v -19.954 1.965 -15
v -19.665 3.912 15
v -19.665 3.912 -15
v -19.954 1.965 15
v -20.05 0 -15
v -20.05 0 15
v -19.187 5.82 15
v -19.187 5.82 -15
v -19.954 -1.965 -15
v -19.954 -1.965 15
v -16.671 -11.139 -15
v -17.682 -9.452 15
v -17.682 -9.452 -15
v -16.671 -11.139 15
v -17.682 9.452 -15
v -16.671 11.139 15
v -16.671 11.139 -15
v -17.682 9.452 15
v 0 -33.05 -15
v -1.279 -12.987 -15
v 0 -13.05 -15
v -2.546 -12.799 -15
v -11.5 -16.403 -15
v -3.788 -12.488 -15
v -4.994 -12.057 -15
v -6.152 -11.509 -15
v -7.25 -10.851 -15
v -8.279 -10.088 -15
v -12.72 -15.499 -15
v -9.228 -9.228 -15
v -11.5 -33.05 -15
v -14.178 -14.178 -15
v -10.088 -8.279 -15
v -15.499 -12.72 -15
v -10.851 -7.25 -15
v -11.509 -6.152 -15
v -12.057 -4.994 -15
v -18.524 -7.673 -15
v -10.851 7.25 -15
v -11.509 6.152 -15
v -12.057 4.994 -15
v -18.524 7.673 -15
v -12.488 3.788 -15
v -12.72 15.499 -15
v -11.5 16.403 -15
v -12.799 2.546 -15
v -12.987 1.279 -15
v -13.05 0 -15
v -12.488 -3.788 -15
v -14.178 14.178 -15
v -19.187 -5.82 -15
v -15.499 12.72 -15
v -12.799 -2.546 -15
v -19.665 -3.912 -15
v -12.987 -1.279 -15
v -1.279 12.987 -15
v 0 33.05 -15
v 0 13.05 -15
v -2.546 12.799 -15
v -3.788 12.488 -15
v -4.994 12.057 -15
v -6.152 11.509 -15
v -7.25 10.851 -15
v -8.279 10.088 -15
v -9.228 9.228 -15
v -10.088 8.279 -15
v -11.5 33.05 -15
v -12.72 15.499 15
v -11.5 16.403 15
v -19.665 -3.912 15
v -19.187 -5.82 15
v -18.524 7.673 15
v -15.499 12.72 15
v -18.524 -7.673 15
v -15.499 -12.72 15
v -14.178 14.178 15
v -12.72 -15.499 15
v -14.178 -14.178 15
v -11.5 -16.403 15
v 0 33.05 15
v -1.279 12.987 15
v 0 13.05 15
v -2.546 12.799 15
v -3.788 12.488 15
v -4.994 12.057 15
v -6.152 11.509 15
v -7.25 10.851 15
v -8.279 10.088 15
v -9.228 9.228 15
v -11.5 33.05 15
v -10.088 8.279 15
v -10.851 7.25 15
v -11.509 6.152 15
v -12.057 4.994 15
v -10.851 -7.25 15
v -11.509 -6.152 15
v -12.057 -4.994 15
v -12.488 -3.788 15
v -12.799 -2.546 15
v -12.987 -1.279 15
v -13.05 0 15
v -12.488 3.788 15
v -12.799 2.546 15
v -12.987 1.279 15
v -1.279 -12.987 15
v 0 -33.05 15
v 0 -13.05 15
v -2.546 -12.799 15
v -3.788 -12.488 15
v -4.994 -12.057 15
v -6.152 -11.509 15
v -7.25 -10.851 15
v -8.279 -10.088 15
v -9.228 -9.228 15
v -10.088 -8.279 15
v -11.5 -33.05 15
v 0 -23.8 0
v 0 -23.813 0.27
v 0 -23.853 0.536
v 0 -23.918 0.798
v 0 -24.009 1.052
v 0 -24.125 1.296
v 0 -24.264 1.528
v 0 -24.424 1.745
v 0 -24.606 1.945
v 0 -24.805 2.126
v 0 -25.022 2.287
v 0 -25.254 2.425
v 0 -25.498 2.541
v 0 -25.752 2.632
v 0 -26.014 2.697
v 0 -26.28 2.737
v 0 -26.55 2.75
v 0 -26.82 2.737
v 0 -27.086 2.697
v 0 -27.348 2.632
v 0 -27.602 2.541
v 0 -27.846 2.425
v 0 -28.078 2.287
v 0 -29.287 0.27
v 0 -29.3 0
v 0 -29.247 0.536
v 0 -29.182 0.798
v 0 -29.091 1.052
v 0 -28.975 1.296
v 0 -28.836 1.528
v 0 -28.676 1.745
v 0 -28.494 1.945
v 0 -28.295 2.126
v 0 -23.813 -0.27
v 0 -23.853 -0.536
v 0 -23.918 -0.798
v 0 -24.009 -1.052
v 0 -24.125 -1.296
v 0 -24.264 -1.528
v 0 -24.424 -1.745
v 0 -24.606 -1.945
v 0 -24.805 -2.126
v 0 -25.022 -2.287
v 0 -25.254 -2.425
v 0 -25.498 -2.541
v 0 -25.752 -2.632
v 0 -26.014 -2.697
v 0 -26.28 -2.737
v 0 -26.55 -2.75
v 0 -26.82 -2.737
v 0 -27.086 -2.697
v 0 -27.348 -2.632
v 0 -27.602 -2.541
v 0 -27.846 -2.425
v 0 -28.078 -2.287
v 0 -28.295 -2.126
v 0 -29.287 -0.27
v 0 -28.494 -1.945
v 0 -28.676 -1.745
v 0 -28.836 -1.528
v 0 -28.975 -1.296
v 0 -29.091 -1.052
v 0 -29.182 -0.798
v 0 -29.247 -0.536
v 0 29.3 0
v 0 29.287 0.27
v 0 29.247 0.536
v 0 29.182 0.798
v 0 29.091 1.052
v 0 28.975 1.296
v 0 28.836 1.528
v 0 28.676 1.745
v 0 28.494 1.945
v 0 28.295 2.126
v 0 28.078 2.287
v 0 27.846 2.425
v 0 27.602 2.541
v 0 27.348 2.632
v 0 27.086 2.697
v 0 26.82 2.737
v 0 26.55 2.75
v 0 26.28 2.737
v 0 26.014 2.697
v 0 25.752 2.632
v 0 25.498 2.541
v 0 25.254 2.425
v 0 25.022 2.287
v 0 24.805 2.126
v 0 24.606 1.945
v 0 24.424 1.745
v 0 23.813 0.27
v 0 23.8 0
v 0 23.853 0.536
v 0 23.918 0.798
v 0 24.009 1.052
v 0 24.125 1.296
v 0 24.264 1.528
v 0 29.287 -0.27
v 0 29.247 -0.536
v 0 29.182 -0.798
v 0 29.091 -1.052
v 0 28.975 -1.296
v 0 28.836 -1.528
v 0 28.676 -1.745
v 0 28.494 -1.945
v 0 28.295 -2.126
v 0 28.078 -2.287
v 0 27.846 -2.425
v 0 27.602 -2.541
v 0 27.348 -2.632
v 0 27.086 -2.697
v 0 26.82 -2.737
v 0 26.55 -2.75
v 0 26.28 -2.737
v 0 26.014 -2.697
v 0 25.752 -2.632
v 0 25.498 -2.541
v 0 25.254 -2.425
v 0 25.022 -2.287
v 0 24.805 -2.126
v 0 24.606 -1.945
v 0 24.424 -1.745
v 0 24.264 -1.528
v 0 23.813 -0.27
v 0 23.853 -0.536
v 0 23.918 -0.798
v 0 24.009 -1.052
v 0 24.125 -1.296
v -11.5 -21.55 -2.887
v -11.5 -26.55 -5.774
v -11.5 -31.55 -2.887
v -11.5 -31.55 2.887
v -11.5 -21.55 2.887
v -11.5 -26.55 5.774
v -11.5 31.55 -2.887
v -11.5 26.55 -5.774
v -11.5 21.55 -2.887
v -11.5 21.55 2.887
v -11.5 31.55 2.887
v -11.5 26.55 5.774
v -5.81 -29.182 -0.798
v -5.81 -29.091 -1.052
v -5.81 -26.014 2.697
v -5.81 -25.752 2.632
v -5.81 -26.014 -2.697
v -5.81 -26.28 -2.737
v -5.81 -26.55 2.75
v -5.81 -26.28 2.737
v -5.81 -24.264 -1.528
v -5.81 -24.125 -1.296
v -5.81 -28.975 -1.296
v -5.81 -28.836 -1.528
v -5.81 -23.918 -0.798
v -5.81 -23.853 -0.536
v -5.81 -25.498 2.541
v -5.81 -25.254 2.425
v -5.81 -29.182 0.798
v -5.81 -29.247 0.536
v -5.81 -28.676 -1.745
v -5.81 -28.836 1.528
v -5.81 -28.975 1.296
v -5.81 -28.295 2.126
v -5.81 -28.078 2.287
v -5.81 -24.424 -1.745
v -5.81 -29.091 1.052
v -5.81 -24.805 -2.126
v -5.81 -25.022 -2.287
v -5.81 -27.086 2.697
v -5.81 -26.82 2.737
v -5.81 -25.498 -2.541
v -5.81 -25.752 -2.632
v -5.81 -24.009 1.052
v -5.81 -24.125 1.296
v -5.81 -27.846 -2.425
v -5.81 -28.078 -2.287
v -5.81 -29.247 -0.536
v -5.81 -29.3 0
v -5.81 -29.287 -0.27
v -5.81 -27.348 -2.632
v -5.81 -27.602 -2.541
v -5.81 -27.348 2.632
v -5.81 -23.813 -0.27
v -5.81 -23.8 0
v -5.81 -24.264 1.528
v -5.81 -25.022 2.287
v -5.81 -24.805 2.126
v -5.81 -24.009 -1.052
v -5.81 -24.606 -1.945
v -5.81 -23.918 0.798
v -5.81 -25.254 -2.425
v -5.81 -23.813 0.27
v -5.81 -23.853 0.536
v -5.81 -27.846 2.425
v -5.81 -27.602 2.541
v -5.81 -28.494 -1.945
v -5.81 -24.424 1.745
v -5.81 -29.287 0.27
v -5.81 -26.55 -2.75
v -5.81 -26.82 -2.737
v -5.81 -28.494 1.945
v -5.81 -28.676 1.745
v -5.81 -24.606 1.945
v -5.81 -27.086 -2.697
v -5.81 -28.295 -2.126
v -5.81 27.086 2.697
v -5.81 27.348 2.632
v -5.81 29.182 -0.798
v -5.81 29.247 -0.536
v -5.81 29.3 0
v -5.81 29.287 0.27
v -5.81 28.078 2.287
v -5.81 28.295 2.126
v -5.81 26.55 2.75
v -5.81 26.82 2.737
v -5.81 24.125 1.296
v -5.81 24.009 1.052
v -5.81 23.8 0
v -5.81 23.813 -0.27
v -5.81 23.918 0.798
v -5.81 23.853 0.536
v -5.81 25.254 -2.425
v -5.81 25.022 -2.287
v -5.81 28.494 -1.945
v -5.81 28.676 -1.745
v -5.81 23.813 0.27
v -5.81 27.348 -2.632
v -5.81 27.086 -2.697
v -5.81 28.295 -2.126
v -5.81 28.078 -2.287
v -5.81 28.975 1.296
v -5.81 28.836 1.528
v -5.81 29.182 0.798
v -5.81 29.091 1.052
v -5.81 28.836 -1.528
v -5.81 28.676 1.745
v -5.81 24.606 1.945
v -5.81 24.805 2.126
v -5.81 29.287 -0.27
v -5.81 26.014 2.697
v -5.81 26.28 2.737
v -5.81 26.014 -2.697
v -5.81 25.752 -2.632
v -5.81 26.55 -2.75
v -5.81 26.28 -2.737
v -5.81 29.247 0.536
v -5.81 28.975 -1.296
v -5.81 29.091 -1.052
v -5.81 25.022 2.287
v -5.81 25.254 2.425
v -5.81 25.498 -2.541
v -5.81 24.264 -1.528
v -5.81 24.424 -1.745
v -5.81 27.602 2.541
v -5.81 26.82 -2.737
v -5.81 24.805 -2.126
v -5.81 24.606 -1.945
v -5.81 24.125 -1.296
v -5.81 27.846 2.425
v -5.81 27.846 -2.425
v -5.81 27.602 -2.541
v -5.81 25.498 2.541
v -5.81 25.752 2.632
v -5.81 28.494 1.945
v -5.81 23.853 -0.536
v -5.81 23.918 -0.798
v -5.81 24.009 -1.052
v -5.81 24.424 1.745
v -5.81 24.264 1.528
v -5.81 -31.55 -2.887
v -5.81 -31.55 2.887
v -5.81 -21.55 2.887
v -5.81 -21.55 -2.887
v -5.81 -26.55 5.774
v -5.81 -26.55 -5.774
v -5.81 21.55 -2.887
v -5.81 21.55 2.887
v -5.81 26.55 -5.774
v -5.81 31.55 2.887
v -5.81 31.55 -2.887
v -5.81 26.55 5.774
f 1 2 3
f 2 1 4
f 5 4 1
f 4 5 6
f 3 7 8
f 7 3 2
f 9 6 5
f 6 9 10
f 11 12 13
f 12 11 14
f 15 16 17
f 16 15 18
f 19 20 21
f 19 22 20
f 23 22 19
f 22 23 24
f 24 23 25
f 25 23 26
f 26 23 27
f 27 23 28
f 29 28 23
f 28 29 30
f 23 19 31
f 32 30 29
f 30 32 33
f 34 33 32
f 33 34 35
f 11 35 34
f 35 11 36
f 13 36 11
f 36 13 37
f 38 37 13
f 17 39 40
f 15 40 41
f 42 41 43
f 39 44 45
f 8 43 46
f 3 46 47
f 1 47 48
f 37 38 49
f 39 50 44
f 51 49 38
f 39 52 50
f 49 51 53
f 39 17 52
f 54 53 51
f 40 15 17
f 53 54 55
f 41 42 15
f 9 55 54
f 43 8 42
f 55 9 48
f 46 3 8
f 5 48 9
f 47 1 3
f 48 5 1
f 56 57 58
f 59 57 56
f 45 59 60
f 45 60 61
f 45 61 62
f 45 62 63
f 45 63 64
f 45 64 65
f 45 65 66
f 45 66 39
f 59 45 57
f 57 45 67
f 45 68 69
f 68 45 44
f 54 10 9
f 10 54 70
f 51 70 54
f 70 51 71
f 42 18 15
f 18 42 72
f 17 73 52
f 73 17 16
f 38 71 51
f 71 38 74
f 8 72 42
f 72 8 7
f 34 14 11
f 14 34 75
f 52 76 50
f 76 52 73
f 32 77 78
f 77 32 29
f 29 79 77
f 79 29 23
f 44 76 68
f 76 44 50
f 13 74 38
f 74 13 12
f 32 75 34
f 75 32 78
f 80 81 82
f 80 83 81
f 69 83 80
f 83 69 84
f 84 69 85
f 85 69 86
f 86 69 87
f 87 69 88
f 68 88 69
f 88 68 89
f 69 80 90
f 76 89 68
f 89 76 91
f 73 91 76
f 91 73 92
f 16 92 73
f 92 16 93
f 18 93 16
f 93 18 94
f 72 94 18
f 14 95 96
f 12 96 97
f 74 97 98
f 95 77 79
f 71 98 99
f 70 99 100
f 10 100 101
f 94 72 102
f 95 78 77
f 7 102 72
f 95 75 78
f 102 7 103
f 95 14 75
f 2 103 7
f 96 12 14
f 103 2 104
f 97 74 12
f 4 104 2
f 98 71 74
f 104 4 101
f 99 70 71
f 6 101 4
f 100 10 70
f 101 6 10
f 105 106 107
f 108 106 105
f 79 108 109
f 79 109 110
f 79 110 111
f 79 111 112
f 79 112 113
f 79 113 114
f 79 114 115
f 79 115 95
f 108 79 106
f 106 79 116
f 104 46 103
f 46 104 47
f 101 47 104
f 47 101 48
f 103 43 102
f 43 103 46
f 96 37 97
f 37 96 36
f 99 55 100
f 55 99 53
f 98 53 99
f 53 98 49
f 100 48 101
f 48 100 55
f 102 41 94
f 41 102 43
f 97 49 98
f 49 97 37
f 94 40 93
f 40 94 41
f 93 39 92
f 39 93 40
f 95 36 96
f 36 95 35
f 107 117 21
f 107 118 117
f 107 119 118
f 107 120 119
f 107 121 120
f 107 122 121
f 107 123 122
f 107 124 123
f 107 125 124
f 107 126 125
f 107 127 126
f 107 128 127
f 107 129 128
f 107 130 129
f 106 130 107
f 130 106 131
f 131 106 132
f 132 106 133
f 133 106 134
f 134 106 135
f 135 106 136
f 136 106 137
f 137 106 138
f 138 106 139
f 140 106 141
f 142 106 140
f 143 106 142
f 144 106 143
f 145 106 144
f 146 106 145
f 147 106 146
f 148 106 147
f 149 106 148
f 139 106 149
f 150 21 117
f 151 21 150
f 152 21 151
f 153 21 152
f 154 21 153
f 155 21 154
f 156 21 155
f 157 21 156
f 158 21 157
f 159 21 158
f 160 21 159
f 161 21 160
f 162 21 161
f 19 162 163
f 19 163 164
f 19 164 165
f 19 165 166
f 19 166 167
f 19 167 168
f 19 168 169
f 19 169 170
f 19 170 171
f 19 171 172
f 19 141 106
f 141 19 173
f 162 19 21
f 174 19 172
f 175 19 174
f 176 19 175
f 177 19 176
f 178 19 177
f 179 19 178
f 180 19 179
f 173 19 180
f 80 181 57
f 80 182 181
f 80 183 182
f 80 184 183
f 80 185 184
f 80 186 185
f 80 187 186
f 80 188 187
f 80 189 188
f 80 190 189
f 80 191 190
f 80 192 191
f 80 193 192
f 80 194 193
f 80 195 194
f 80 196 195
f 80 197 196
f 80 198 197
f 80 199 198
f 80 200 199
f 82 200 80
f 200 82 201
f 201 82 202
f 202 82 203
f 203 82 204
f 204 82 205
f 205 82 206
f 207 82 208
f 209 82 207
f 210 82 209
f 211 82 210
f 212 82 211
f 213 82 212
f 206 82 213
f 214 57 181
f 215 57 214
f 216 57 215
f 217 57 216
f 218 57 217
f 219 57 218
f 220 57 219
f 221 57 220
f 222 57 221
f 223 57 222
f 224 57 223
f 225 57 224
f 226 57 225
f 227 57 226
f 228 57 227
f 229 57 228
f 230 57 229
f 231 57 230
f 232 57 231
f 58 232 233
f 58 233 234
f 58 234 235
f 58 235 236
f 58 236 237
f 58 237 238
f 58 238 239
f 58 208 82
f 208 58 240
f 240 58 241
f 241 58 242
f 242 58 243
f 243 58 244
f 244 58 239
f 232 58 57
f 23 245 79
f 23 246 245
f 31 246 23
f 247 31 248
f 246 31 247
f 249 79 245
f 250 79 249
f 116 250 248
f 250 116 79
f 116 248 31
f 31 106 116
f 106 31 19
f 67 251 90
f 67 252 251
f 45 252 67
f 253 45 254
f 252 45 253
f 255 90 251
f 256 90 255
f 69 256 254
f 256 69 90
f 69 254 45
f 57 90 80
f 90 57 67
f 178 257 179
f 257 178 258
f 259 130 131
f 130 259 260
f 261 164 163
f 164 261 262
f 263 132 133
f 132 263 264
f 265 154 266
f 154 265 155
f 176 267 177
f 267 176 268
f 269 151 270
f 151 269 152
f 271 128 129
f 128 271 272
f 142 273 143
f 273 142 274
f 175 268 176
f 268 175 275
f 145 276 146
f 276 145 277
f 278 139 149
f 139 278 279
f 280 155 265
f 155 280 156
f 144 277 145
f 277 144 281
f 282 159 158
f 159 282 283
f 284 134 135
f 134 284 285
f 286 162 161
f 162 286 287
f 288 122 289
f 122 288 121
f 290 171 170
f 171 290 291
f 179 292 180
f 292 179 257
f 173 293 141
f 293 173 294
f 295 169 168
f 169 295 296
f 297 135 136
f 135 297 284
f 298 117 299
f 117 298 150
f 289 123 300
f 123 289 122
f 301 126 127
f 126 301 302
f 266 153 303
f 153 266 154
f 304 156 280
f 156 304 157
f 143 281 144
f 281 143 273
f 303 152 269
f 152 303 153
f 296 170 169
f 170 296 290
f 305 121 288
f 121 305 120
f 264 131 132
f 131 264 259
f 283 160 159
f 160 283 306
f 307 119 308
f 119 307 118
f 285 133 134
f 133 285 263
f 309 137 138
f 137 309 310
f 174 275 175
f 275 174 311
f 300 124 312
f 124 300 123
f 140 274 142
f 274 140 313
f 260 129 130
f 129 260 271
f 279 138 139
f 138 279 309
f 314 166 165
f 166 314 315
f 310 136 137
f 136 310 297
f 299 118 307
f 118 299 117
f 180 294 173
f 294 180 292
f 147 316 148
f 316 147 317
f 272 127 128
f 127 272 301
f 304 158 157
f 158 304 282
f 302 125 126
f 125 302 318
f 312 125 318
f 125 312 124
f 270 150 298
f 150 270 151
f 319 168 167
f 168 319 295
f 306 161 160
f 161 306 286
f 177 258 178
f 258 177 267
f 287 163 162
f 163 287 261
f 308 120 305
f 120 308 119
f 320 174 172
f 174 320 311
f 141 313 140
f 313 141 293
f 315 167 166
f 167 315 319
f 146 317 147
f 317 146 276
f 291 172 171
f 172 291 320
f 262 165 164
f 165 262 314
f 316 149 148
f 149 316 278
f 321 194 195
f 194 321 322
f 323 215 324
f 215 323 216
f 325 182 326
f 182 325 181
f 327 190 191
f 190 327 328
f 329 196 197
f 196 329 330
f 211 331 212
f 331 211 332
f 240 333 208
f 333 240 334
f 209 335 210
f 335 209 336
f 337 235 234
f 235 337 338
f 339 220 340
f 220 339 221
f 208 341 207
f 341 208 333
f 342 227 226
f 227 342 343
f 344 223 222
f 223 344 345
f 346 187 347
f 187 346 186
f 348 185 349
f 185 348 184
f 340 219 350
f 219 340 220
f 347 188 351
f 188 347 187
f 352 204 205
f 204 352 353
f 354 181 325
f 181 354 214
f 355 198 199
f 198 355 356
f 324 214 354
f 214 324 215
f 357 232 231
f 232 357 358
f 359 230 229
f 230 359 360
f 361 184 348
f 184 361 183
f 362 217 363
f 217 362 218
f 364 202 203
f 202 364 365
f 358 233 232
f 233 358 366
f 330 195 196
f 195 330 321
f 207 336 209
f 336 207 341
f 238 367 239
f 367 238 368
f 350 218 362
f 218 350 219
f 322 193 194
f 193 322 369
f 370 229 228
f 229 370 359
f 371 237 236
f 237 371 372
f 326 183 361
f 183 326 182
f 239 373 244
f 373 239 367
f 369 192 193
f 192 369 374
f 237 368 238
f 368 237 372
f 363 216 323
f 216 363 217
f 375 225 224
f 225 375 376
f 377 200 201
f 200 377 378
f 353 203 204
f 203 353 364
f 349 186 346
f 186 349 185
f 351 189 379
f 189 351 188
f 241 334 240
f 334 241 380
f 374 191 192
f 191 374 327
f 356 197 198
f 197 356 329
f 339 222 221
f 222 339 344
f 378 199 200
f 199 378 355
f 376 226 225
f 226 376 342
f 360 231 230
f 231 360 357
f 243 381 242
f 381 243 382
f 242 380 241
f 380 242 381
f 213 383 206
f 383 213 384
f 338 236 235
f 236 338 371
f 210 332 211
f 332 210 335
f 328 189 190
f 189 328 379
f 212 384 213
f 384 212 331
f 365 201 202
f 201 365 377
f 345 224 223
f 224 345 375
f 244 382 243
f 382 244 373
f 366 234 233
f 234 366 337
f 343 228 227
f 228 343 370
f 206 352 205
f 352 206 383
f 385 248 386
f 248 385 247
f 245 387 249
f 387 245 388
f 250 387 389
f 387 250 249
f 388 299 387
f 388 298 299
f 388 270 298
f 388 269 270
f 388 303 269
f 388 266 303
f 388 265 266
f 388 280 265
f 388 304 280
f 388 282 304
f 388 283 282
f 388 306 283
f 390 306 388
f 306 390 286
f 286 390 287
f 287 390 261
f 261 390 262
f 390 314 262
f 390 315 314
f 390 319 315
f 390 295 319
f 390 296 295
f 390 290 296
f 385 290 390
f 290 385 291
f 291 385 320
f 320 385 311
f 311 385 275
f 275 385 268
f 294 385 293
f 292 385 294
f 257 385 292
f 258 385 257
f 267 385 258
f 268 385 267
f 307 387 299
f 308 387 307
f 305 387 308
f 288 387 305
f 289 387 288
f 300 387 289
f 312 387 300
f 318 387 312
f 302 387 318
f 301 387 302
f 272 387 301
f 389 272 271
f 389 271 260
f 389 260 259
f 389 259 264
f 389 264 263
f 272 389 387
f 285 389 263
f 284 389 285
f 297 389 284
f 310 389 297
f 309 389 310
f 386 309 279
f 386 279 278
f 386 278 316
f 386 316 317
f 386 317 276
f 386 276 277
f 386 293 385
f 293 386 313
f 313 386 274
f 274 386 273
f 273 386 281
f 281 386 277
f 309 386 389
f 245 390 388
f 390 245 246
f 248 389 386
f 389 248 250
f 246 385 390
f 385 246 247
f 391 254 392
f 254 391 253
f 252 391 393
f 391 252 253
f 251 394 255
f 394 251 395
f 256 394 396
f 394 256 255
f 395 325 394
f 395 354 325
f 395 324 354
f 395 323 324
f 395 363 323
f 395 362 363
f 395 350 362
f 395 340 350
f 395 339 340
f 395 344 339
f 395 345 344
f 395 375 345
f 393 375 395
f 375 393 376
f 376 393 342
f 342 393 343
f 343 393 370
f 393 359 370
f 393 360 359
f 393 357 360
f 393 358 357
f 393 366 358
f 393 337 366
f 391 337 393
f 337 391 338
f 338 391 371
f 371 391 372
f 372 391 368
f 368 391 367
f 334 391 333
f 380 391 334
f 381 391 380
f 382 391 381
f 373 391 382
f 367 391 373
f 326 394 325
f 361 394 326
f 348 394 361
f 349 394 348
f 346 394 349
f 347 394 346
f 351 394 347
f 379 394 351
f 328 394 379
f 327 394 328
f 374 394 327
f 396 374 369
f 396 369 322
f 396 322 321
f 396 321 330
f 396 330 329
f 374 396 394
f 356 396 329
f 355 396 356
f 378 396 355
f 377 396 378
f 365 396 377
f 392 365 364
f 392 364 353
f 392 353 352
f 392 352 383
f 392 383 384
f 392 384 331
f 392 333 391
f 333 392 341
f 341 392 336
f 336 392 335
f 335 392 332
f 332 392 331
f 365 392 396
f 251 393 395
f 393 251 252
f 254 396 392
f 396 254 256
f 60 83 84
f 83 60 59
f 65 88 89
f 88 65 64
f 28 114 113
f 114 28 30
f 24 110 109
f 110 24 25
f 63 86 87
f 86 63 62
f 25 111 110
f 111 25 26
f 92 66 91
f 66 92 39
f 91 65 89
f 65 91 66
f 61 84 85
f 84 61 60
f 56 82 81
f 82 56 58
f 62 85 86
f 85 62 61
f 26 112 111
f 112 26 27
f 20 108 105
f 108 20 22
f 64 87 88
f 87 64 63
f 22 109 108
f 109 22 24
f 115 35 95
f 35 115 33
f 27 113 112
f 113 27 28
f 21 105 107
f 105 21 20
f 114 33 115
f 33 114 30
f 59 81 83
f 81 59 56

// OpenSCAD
// file: common.scad
// Shared parameters and helper modules for the LawnBerry Pi zero-turn
// actuation mounts (Toro TimeCutter 50" conversion).
//
// EVERY dimension marked "MEASURE" is a placeholder. The Toro operator's
// manual (form 3465-589) carries no dimensioned drawings, so frame and
// lever sizes must come off the actual machine with calipers before you
// print anything structural. See README.md.

$fn = 64;

// ---------------------------------------------------------------- machine
// MEASURE: outside diameter of the frame tube the servo bracket clamps to.
frame_tube_od     = 38.1;   // 1.5" round tube, placeholder
// MEASURE: outside diameter of the lap-bar tube the pushrod clamp grips.
lapbar_tube_od    = 25.4;   // 1.0" round tube, placeholder
// MEASURE: wall thickness available for the throttle-servo mounting face.
panel_thickness   = 2.0;

// ----------------------------------------------------------------- servo
// DSSERVO RDS51150SG, from the manufacturer spec: 65 x 30 x 48 mm.
// The servo ships with U-shaped aluminium holders; these mounts bolt to
// those holders rather than gripping the servo body, which is both
// stronger and avoids trapping heat.
servo_body_l      = 65;
servo_body_w      = 30;
servo_body_h      = 48;
// MEASURE: hole spacing on the supplied U-bracket. Slots absorb error.
servo_bracket_hole_spacing_x = 50;
servo_bracket_hole_spacing_y = 20;

// --------------------------------------------------------------- fixings
m3_clear          = 3.4;
m4_clear          = 4.5;
m5_clear          = 5.5;
m6_clear          = 6.4;
m6_nut_af         = 10.0;   // across flats
m6_nut_h          = 5.2;
m5_nut_af         = 8.0;
m5_nut_h          = 4.7;

// ----------------------------------------------------------------- print
wall              = 5.0;    // structural wall; do not thin below 4 mm
clamp_wall        = 7.0;    // wall around clamped tubes
clearance         = 0.35;   // printer fit clearance, tune per machine

// ---------------------------------------------------------------- helpers

// Hex pocket for a captive nut, opening along +Z.
module nut_pocket(af, h) {
    cylinder(h = h, d = af / cos(30), $fn = 6);
}

// Slotted hole: lets you shim out mounting error without reprinting.
module slot(d, len, h) {
    hull() {
        translate([-len / 2, 0, 0]) cylinder(h = h, d = d);
        translate([ len / 2, 0, 0]) cylinder(h = h, d = d);
    }
}

// One half of a split tube clamp.
//
// Geometry: tube axis along Z. The split plane is X = 0, so this half
// occupies X >= 0 and the mating half is its mirror. Bolt ears stand off
// in +/-Y and the clamp bolts run along X through both halves. Any
// mounting boss extends in +X, clear of the ears.
//
// half = 0 -> the half carrying the mounting boss (bolt heads this side)
// half = 1 -> the plain closing half (captive nuts)
module tube_clamp_half(tube_od, width, ear_bolt = m6_clear,
                       ear_len = 16, half = 0) {
    r_in    = tube_od / 2 + clearance;
    r_out   = r_in + clamp_wall;
    ear_thk = ear_bolt + 6;              // ear thickness along X
    ear_yi  = r_in * 0.5;                // inner edge, buried in the barrel
    ear_yo  = r_out + ear_len;           // outer edge
    bolt_y  = r_out + ear_len * 0.5;
    nut_h   = (ear_bolt > 5) ? m6_nut_h : m5_nut_h;
    nut_af  = (ear_bolt > 5) ? m6_nut_af : m5_nut_af;
    difference() {
        union() {
            // Half barrel, X >= 0
            intersection() {
                difference() {
                    cylinder(h = width, r = r_out, center = true);
                    cylinder(h = width + 2, r = r_in, center = true);
                }
                translate([0, -r_out - 1, -width / 2 - 1])
                    cube([r_out + 1, 2 * r_out + 2, width + 2]);
            }
            // Bolt ears, both sides of the barrel
            for (s = [-1, 1])
                translate([ear_thk / 2,
                           s * (ear_yi + ear_yo) / 2,
                           0])
                    cube([ear_thk, ear_yo - ear_yi, width], center = true);
        }
        // Bore (re-cut so the ears cannot intrude)
        cylinder(h = width + 2, r = r_in, center = true);
        // Clamp bolt holes, axis along X
        for (s = [-1, 1])
            translate([0, s * bolt_y, 0])
                rotate([0, 90, 0])
                    cylinder(h = ear_thk * 4, d = ear_bolt, center = true);
        // Captive nuts in the closing half only
        if (half == 1)
            for (s = [-1, 1])
                translate([ear_thk + 0.01, s * bolt_y, 0])
                    rotate([0, -90, 0])
                        nut_pocket(nut_af, nut_h + 0.5);
    }
}
// main file
// Closing half of the lap-bar clamp used by lapbar_pushrod_clamp.scad.
// Print TWO. Captive M5 nuts.
//
//   openscad -o lapbar_pushrod_clamp_cap.stl lapbar_pushrod_clamp_cap.scad

include <common.scad>

clamp_width = 30;   // must match lapbar_pushrod_clamp.scad

rotate([0, 180, 0])
    tube_clamp_half(lapbar_tube_od, clamp_width, ear_bolt = m5_clear,
                    ear_len = 13, half = 1);
